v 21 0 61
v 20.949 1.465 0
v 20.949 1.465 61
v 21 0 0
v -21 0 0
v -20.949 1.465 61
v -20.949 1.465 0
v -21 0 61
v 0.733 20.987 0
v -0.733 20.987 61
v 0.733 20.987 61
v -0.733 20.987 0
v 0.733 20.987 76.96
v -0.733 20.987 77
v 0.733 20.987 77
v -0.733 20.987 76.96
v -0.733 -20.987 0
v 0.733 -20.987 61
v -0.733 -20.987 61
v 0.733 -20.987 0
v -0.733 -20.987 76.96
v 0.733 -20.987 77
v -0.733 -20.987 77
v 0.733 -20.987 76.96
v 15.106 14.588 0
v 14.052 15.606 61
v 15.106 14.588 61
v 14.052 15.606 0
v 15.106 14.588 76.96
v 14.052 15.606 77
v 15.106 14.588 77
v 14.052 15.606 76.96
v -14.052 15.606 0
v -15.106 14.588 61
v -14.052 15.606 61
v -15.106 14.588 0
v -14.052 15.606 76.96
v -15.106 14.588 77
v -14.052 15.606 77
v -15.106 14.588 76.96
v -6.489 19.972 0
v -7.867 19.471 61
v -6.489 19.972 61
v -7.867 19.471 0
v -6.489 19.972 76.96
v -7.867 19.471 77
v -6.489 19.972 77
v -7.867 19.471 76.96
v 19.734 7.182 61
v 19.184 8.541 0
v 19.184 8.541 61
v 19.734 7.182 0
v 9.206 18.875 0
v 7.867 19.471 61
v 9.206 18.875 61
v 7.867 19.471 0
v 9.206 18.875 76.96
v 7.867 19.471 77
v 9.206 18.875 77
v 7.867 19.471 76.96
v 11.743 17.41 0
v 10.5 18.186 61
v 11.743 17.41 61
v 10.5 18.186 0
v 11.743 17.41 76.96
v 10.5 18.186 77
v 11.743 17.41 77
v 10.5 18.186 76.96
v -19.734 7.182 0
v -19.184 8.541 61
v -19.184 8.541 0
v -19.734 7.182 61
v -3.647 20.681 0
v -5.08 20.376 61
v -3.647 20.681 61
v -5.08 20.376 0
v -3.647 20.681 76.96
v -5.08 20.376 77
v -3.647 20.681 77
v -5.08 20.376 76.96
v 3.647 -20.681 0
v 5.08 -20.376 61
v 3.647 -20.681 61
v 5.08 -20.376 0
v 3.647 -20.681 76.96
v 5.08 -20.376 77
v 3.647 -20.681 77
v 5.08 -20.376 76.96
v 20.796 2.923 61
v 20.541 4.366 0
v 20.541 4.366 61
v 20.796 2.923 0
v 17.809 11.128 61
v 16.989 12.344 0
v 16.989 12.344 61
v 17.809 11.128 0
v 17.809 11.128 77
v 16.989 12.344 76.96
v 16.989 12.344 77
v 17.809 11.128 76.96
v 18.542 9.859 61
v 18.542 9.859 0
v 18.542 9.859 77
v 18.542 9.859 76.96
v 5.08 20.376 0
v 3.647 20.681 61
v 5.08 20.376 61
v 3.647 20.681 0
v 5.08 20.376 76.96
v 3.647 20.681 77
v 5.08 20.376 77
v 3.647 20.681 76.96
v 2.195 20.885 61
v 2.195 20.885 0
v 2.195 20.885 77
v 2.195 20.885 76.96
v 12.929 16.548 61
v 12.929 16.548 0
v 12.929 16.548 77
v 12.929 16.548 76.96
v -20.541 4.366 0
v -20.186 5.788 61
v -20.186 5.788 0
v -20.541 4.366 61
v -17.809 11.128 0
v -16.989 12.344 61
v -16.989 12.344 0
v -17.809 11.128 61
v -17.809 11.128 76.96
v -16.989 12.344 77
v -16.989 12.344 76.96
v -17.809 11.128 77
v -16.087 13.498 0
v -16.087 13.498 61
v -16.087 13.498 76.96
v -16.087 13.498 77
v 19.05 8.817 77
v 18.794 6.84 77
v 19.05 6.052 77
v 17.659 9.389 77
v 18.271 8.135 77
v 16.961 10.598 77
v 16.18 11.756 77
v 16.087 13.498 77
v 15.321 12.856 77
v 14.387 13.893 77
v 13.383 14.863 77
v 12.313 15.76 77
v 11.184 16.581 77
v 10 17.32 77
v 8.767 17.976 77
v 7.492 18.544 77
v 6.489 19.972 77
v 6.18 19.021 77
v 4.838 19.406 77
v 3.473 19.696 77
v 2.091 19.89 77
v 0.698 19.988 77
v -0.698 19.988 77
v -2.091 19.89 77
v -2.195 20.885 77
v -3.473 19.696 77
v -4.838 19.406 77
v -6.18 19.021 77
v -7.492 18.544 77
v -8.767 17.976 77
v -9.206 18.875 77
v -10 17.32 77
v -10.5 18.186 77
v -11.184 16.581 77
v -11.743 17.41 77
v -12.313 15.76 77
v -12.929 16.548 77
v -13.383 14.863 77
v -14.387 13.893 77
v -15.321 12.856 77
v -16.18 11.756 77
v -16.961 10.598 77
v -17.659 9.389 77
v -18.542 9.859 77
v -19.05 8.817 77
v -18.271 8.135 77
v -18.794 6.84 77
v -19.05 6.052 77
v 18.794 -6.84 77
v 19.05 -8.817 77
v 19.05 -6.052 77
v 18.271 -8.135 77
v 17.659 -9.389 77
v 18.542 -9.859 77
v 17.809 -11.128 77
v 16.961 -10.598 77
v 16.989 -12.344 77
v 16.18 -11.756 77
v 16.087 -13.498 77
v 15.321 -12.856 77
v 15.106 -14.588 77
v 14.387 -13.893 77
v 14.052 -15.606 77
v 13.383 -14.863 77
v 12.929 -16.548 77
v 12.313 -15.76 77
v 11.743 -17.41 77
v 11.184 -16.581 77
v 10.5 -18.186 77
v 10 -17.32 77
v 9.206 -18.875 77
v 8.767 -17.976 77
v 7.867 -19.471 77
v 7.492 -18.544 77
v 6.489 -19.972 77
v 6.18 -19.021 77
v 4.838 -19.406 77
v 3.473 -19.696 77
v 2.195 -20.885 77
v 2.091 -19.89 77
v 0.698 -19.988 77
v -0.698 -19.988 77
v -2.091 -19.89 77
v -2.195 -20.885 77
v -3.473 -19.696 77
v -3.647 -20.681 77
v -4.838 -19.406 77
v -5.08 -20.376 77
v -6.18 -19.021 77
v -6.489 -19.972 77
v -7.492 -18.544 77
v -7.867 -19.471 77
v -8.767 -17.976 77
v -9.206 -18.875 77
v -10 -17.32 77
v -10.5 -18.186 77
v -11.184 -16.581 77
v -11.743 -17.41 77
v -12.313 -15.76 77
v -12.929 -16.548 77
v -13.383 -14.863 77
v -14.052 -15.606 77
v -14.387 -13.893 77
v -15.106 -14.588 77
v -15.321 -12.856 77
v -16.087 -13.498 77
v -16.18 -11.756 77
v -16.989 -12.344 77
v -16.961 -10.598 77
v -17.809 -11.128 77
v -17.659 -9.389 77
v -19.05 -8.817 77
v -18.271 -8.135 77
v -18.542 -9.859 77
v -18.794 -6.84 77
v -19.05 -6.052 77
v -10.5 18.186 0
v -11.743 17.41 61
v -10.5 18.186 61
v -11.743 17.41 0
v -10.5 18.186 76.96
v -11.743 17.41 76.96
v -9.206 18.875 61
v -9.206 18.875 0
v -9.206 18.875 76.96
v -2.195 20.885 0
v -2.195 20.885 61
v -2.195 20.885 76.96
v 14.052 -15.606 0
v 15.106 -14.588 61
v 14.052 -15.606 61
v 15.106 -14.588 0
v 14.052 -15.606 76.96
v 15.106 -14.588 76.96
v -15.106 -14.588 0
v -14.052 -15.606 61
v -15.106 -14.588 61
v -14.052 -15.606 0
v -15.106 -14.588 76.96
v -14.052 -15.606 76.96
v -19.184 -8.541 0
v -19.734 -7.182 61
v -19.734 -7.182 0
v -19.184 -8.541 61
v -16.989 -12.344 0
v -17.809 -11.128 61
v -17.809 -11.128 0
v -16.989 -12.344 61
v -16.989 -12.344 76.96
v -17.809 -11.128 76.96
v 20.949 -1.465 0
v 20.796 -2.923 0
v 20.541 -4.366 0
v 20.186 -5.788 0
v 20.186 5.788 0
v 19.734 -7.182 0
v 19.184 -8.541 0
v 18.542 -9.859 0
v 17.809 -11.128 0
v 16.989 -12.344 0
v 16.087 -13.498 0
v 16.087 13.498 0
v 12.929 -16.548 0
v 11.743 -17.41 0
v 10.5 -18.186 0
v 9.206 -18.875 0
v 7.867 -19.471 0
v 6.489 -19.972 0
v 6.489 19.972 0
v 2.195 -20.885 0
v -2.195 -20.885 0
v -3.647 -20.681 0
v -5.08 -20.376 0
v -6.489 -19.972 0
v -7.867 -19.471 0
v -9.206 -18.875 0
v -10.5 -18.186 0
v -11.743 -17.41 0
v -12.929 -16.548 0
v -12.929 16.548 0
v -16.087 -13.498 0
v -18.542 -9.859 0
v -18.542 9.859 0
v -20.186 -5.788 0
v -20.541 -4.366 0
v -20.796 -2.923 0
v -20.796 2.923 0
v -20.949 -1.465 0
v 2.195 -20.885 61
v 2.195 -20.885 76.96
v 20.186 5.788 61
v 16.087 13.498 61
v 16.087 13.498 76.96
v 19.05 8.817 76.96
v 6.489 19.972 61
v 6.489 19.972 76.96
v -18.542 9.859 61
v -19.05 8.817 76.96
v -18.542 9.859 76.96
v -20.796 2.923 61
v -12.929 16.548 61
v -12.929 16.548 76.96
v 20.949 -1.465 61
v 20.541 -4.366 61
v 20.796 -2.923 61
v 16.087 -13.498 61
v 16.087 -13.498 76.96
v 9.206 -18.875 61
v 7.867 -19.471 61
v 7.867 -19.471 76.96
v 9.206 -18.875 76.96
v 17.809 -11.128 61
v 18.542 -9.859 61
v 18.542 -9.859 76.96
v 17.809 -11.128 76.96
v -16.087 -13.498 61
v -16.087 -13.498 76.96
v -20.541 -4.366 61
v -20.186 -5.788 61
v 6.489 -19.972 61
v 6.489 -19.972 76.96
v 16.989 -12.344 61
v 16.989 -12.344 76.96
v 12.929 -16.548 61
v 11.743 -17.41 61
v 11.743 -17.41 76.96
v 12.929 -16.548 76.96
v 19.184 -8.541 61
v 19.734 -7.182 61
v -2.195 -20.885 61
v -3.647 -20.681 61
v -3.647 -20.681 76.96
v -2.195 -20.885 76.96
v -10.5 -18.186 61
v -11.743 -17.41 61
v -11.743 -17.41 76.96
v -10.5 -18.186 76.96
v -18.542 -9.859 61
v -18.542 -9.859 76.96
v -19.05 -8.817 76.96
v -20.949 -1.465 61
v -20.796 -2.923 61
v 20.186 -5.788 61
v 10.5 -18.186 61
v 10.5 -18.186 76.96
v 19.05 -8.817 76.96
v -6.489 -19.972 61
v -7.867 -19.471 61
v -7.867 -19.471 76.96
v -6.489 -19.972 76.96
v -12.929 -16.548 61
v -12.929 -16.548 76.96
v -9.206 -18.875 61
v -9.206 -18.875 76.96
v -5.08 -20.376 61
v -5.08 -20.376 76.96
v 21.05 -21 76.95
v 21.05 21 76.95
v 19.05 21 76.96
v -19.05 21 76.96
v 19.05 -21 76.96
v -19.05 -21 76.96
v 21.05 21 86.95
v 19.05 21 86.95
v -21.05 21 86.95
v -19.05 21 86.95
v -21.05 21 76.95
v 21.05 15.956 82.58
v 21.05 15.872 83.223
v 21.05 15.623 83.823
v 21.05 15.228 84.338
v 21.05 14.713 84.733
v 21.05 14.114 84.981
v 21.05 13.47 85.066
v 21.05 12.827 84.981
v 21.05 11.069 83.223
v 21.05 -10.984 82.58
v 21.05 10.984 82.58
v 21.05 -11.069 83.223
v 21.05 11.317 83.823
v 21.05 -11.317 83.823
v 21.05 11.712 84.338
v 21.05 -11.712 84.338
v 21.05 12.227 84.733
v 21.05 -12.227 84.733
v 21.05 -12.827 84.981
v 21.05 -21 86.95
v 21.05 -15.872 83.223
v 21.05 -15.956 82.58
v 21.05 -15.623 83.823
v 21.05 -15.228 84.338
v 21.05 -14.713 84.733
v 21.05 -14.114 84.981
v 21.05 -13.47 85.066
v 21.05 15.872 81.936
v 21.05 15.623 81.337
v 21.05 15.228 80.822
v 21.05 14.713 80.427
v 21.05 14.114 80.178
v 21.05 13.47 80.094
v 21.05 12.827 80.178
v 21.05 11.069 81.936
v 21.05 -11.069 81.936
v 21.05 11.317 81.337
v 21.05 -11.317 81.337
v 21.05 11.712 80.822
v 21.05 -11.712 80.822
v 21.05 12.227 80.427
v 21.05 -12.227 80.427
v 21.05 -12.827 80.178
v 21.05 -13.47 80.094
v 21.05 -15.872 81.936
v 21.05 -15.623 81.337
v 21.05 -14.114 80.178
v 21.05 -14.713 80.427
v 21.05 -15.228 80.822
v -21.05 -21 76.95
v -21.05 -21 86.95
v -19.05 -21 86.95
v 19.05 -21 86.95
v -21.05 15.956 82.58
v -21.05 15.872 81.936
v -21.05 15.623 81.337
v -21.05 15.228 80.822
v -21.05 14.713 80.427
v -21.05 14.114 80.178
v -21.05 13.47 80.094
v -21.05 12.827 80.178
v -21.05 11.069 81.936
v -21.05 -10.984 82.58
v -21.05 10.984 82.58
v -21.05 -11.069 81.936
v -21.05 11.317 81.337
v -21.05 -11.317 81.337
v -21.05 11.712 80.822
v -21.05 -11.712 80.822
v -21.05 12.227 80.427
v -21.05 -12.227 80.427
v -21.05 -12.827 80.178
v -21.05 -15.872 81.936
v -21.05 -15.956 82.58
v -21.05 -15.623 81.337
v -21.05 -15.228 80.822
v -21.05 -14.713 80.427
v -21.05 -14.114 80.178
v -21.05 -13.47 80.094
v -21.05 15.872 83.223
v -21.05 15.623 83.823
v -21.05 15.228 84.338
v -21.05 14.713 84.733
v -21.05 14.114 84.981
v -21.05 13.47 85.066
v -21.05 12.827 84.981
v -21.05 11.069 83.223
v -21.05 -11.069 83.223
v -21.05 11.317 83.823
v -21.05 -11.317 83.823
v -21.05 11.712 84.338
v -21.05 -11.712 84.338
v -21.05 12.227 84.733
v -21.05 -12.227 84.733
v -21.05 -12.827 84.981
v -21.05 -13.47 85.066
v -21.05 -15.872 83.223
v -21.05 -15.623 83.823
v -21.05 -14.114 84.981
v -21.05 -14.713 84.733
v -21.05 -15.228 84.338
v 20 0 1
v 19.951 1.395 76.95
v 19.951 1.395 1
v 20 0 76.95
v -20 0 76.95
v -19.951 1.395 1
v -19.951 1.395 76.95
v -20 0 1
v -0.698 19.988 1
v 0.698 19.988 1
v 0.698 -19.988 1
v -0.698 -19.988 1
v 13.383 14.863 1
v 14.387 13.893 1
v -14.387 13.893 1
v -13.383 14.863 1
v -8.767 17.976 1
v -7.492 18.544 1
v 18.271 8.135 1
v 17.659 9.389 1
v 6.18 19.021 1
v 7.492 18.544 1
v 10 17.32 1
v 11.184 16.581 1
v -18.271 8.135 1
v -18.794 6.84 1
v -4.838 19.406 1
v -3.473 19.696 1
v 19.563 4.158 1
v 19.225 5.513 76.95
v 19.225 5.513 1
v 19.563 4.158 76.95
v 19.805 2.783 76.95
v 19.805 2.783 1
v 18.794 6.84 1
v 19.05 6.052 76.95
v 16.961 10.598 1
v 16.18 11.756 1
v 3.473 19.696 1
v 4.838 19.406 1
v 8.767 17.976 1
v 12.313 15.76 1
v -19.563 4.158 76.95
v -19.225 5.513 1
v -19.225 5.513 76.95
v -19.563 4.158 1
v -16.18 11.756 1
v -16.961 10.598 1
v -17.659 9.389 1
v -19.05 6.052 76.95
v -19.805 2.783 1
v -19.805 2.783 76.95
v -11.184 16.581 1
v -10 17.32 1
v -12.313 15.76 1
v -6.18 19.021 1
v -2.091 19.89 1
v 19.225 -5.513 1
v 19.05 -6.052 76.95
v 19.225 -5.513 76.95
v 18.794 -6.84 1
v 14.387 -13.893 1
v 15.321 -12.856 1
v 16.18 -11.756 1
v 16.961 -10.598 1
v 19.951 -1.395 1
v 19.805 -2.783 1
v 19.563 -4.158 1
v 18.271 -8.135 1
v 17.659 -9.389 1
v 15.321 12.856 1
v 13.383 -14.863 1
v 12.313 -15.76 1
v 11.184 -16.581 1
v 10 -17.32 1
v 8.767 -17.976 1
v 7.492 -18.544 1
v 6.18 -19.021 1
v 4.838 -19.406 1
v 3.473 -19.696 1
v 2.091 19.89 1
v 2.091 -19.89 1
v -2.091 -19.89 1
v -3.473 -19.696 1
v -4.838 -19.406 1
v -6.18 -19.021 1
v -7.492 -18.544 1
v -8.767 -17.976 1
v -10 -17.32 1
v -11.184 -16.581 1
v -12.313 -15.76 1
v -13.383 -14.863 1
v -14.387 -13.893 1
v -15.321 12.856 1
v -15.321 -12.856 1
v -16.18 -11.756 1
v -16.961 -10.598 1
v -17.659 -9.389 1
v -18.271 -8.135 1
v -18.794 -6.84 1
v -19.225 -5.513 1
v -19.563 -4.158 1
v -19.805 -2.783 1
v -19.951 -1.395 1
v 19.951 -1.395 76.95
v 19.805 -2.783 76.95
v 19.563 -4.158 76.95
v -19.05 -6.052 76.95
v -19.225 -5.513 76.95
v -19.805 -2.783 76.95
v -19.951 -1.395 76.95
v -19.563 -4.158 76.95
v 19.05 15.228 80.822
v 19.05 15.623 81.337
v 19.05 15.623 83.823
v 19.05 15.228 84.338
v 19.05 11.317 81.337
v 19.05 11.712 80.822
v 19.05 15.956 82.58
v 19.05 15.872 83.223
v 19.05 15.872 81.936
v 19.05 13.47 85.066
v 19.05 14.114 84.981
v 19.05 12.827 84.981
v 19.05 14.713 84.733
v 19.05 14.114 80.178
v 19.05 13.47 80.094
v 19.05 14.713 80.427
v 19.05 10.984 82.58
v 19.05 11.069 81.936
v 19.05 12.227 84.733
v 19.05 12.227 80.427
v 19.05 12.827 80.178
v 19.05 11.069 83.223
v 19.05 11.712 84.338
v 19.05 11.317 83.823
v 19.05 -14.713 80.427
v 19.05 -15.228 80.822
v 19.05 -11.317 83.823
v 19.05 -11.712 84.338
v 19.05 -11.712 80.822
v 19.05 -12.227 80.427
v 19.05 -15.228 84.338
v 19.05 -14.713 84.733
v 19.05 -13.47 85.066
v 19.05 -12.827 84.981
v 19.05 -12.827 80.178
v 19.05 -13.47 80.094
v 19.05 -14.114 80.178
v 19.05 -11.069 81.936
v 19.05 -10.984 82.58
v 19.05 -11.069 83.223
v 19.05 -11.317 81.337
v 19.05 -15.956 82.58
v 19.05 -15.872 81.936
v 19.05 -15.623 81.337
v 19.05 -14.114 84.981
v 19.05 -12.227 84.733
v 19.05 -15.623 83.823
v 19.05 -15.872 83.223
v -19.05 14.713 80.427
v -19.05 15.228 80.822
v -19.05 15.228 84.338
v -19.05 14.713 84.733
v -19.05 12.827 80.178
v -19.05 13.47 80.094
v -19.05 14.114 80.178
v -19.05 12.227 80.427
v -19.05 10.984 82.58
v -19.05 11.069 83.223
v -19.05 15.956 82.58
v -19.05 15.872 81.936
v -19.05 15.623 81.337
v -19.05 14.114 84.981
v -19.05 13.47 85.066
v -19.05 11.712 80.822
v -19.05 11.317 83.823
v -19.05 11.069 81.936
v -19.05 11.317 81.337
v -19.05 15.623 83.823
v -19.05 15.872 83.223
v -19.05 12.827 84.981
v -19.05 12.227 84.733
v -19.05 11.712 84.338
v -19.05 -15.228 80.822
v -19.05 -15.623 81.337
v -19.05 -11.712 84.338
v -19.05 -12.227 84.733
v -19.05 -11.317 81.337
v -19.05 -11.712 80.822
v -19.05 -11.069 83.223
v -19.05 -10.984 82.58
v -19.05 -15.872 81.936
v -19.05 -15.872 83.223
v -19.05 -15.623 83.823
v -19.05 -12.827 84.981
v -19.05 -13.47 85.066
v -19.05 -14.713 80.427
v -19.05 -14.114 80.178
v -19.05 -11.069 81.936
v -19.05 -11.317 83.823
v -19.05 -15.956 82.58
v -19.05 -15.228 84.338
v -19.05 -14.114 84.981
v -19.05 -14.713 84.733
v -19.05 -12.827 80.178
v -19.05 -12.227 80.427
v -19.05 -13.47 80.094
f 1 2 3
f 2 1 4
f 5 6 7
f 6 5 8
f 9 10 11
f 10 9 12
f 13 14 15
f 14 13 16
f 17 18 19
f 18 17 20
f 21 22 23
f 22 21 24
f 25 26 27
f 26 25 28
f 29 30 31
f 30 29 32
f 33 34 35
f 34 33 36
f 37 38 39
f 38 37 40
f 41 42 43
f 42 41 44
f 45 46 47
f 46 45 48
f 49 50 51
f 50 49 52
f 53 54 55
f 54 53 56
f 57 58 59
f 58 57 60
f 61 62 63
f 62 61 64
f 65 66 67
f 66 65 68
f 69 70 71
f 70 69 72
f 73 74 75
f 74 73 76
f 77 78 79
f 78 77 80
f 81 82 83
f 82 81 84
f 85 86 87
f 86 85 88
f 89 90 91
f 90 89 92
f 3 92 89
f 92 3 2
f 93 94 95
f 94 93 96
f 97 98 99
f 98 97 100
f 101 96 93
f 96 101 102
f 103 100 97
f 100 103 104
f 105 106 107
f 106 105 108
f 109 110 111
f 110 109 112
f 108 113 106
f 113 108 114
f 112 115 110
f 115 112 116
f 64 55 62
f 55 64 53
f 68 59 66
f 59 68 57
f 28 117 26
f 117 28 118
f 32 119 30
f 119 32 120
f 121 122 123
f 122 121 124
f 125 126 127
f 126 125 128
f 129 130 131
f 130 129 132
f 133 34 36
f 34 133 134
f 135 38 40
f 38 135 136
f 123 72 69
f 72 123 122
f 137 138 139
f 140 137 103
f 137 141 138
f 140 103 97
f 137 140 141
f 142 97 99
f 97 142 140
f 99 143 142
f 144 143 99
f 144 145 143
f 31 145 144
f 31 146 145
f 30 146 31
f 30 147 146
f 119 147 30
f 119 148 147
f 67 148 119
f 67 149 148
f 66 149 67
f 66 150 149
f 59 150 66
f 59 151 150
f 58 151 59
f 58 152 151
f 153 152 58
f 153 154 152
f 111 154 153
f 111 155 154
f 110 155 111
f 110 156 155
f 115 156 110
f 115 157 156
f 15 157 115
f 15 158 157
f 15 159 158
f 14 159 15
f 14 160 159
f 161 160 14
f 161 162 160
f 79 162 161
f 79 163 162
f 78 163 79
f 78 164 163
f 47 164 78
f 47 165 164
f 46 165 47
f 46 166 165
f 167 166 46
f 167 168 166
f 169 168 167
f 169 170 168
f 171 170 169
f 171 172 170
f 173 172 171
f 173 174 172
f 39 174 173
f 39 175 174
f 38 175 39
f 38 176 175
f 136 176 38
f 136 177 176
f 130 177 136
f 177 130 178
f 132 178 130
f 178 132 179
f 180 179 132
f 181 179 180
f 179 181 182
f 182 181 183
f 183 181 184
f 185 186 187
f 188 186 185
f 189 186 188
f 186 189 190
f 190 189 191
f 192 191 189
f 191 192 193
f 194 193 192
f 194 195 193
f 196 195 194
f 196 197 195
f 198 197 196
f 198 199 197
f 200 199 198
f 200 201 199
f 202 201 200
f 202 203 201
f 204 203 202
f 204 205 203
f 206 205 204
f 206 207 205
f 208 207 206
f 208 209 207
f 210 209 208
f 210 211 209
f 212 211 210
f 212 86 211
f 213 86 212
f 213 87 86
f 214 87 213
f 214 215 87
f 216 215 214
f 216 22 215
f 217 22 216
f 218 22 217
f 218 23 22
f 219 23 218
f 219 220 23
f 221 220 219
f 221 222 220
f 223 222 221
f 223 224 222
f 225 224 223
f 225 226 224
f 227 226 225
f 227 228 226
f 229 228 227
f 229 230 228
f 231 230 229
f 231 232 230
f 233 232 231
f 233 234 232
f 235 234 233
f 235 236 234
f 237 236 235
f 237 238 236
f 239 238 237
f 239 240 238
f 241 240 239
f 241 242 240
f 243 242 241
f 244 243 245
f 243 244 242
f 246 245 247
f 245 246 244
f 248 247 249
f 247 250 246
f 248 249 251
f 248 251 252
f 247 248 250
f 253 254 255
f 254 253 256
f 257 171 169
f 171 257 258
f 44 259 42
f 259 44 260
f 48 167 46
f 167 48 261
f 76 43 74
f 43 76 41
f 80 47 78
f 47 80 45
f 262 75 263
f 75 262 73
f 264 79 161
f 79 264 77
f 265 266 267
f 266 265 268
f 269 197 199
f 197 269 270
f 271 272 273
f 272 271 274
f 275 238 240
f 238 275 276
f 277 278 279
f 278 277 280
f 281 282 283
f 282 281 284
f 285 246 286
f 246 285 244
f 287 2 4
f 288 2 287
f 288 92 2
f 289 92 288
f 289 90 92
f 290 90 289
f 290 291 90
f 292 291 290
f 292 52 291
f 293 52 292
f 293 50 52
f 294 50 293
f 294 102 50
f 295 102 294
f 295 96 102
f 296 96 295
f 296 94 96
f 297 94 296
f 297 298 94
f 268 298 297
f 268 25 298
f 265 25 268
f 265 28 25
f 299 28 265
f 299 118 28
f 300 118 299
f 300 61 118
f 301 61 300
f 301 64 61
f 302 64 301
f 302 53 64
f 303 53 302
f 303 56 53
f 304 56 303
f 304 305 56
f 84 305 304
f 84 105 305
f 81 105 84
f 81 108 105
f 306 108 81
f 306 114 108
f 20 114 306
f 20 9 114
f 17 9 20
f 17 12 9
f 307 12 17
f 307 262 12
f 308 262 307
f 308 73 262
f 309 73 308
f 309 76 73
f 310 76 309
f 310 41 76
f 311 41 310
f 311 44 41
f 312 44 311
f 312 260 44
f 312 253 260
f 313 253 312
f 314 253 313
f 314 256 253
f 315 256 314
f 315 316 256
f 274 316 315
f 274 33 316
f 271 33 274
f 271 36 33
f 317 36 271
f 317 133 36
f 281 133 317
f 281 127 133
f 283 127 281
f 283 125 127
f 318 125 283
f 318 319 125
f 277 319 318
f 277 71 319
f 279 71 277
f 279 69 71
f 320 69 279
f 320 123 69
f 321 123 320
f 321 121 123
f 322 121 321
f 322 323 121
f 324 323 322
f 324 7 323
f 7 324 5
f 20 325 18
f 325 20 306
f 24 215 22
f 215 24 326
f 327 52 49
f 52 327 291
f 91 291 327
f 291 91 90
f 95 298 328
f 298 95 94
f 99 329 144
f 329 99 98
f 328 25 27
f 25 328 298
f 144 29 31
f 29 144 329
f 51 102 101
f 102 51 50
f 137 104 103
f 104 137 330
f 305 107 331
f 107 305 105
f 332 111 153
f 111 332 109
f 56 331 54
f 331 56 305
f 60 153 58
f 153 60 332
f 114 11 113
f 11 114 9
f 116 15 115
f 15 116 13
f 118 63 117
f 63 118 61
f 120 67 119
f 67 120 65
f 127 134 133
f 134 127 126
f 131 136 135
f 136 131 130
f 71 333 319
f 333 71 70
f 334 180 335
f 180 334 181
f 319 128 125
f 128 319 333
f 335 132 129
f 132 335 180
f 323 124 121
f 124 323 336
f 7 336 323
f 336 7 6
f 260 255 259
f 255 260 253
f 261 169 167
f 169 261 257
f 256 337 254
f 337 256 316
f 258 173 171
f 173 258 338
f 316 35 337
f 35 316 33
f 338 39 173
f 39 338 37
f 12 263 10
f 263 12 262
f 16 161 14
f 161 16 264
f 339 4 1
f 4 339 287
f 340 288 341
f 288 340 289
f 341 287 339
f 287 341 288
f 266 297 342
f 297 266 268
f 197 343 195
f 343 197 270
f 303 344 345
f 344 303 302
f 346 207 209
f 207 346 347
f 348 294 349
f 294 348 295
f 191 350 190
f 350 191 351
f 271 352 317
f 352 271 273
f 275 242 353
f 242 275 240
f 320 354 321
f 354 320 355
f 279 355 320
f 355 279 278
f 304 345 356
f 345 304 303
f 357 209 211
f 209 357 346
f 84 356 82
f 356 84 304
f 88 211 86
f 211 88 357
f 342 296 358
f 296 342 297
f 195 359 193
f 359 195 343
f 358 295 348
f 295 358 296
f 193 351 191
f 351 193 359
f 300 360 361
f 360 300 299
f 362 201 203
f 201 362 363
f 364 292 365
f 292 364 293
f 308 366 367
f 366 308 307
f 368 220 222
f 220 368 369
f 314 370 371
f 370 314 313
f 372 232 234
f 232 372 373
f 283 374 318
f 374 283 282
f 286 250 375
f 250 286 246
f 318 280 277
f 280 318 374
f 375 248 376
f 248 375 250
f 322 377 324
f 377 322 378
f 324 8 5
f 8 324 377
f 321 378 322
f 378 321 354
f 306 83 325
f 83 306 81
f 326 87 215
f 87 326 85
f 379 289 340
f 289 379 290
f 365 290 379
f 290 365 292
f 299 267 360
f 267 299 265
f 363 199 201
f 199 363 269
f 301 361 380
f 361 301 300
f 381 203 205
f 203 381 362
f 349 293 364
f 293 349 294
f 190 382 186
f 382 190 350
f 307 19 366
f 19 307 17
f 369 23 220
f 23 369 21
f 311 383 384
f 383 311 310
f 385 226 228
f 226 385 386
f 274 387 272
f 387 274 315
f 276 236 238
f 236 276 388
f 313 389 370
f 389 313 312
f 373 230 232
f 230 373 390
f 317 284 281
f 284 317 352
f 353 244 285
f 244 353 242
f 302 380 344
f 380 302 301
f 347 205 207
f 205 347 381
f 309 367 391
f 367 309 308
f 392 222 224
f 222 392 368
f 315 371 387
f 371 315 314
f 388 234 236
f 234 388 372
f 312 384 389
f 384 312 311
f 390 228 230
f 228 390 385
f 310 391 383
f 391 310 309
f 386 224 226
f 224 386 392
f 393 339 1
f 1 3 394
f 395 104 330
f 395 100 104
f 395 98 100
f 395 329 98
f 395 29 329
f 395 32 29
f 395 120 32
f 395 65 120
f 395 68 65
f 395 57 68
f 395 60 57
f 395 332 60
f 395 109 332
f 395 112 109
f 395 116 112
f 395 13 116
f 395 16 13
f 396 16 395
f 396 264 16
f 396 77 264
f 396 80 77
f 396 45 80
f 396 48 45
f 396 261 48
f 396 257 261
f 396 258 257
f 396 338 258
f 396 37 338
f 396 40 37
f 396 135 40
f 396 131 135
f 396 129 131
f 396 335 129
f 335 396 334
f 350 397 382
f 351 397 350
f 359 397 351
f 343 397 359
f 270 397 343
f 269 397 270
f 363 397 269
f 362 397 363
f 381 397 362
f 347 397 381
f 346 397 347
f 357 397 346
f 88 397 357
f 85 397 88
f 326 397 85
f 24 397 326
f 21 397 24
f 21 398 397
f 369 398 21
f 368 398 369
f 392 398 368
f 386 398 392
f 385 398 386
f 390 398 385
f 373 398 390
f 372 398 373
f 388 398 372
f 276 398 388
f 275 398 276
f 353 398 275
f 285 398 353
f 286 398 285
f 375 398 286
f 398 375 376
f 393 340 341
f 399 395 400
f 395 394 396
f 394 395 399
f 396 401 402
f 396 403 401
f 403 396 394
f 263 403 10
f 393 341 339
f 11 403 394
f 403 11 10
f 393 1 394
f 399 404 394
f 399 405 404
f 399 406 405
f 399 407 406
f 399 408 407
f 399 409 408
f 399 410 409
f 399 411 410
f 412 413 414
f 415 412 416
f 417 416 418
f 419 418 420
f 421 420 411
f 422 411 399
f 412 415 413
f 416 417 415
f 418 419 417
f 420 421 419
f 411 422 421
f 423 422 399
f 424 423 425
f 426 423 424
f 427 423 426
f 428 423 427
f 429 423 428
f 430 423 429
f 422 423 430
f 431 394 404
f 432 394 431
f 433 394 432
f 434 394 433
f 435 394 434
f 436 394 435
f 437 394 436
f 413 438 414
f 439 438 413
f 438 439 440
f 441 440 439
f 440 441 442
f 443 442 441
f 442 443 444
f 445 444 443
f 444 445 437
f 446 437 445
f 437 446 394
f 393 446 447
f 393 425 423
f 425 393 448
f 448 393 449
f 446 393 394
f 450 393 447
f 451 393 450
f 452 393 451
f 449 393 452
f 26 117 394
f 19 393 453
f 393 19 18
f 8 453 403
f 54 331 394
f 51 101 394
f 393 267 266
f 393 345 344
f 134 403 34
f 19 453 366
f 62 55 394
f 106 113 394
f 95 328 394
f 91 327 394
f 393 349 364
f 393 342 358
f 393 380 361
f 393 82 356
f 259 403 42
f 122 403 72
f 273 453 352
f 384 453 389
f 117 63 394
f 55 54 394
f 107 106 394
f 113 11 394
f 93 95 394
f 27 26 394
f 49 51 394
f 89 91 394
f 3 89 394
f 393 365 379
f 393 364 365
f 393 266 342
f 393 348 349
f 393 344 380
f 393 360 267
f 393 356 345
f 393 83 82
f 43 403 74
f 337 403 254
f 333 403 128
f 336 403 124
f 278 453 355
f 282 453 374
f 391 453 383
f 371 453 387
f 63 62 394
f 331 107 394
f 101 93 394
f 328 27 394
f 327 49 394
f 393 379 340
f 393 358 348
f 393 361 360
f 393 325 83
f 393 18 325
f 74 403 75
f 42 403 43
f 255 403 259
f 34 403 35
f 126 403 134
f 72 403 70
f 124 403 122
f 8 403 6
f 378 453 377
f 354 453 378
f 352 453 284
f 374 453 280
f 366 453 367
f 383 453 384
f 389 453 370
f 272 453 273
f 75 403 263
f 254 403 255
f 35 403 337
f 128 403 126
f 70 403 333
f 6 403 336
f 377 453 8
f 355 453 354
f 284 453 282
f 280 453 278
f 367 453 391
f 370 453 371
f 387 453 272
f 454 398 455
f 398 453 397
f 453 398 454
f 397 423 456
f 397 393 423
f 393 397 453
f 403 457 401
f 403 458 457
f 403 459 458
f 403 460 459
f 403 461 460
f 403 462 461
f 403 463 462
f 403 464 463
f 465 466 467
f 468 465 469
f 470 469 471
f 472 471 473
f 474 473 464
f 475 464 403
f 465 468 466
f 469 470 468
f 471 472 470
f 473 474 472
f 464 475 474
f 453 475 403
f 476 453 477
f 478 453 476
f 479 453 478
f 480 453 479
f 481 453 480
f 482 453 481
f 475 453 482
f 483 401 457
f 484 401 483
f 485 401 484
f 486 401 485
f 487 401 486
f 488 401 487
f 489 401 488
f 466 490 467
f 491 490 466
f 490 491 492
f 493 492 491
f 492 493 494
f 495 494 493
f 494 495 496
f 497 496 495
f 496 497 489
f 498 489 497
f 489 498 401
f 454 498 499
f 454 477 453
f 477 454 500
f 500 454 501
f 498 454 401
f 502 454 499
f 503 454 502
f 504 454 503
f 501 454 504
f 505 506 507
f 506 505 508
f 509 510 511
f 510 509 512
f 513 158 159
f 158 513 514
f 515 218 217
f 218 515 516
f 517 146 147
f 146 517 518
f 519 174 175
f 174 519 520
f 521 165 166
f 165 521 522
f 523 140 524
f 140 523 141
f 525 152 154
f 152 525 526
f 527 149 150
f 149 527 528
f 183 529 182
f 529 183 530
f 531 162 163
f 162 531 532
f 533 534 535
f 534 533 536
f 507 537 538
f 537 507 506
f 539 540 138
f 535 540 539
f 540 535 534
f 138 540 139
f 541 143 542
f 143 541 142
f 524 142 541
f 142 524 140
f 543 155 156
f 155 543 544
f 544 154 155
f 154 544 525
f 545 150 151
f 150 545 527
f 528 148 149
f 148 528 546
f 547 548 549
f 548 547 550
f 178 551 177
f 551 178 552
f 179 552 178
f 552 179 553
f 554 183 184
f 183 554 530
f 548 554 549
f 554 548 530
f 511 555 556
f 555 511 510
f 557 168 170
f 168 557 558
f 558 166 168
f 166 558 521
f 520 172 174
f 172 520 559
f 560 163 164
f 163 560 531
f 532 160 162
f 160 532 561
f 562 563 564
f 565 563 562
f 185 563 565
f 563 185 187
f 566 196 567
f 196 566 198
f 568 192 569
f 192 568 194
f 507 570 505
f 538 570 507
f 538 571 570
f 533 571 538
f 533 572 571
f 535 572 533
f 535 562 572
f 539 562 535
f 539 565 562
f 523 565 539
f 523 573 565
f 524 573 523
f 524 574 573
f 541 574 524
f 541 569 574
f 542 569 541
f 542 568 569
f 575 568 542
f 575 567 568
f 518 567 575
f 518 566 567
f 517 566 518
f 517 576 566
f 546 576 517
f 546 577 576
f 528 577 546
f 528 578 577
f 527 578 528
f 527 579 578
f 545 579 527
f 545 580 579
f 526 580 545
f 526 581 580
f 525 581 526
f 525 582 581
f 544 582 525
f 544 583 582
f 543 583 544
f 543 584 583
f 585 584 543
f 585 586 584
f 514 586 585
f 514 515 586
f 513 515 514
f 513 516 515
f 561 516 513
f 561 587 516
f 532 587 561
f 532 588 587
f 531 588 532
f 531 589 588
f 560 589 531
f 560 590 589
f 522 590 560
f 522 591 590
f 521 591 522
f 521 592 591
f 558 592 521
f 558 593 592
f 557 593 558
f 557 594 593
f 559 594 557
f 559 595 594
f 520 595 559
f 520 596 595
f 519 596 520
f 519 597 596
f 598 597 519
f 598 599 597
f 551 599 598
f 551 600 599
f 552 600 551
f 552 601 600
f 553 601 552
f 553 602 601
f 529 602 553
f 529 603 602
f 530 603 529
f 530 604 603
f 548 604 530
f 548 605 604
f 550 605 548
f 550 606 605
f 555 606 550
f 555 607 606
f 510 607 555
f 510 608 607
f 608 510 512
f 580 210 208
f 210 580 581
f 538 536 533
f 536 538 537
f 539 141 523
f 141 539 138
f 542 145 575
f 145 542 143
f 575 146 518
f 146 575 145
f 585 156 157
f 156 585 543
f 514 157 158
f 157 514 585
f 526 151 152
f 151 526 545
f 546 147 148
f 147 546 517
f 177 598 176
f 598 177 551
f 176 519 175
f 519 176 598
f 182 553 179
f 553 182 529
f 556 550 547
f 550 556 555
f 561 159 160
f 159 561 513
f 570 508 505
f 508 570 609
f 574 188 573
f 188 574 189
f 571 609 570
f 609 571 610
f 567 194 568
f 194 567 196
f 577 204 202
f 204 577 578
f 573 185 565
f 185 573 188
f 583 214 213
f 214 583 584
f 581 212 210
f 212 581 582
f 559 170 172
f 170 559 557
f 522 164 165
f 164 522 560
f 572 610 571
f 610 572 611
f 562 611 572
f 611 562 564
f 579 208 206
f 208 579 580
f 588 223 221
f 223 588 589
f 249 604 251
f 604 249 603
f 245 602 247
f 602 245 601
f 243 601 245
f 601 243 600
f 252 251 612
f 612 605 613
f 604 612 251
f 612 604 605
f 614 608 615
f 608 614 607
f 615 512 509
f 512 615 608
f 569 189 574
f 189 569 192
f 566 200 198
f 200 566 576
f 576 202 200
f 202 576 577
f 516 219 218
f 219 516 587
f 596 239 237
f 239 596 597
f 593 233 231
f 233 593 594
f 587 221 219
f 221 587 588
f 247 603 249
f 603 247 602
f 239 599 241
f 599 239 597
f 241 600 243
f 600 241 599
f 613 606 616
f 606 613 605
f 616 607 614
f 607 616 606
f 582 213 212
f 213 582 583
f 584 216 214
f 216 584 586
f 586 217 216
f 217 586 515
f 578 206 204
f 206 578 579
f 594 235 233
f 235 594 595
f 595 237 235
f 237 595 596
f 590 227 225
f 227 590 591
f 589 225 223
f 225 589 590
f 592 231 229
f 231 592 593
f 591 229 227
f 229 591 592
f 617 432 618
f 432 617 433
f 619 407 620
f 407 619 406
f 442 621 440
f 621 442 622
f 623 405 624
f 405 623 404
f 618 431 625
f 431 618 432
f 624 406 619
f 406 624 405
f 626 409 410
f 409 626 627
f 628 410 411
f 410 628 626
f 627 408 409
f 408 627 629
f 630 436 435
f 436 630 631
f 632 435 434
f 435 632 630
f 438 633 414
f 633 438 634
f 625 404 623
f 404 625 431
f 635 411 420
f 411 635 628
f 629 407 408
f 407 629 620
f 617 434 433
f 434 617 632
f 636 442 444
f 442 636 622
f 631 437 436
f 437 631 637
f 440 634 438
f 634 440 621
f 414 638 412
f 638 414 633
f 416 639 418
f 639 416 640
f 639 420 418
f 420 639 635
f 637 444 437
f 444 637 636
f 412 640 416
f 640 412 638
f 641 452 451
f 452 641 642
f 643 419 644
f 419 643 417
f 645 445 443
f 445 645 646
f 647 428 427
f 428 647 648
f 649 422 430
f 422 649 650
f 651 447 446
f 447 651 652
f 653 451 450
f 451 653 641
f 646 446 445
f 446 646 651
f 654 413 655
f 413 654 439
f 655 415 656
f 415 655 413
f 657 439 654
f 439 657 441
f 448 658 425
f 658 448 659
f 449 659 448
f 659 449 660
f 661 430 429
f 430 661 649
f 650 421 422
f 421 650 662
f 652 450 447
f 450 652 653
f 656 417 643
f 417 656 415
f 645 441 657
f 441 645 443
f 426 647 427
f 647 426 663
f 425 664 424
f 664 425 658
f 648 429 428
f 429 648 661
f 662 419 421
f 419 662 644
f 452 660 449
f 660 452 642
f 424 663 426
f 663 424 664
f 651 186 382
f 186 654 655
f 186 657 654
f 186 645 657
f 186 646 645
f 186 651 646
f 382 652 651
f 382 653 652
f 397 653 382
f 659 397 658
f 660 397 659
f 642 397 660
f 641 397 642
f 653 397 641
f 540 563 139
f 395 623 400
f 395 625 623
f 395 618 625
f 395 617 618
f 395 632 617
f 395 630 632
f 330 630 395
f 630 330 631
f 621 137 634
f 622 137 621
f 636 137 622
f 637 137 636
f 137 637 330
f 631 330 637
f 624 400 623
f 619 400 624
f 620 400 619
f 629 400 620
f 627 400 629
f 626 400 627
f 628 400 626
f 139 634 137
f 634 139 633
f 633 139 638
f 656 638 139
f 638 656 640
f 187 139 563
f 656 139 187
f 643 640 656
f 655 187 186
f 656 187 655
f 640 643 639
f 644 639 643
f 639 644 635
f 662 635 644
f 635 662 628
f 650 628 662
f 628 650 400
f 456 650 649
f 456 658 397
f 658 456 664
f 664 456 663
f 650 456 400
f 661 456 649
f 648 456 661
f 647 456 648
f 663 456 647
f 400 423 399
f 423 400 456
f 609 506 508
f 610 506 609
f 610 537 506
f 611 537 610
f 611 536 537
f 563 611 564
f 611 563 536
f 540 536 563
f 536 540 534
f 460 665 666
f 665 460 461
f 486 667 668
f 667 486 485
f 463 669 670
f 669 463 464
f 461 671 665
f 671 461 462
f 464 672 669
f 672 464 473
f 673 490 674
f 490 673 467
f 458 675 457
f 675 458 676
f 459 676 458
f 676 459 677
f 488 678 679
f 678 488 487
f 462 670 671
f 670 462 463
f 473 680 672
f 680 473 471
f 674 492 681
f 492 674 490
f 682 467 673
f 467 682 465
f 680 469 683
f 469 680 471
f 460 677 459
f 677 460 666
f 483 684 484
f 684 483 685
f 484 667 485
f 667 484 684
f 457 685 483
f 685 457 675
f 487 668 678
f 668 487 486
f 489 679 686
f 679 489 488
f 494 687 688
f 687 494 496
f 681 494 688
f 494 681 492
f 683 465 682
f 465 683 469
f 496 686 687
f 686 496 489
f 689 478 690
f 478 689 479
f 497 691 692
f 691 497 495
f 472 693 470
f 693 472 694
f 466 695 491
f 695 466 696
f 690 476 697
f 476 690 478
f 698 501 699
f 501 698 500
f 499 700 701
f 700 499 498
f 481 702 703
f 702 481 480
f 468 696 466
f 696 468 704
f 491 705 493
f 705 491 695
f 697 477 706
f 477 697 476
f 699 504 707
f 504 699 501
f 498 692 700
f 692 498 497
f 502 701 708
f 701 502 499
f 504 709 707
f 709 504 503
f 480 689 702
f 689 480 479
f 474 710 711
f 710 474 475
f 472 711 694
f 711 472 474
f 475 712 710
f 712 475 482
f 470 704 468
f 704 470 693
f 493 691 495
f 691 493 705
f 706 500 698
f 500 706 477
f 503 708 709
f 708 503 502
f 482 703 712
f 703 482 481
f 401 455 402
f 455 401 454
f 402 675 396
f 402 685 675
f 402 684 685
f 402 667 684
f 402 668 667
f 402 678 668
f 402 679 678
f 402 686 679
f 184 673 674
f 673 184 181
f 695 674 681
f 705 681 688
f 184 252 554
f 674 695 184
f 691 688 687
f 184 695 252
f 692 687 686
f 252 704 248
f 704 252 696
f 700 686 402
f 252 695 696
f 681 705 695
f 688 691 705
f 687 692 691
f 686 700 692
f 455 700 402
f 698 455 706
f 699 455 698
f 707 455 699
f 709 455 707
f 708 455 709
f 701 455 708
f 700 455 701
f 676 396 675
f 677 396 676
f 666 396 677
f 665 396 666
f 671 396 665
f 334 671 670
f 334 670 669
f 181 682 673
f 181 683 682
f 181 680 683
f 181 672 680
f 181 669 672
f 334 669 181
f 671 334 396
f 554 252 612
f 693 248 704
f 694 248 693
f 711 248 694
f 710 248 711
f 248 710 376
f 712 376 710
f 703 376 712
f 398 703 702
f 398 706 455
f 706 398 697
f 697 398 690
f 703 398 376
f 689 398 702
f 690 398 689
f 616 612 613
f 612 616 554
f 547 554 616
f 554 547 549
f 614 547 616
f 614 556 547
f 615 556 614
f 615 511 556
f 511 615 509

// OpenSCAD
// **************************************************
// Big Corner Motor Cover
// David M. Flynn
// Filename: RoverWheel.scad
// Created: 3/15/2018
// Rev: 1.0.0 3/15/2018
// Units: millimeters
// **************************************************
// History:
// **************************************************

include<CommonStuffSAEmm.scad>

$fn=90;
IDXtra=0.2;
Overlap=0.05;

module MotorCover(){
	Motor_d=40;
	Motor_h=76;
	Wall_t=1.0;

	
	difference(){
		union(){
			cylinder(d=Motor_d+Wall_t*2, h=Motor_h+1);
			
			hull(){
				translate([ChannelLength/2,-(Motor_d+Wall_t*2)/2,Motor_h+1-Overlap])cube([2,Motor_d+Wall_t*2,0.01]);
				translate([-ChannelLength/2-2,-(Motor_d+Wall_t*2)/2,Motor_h+1-Overlap])cube([2,Motor_d+Wall_t*2,0.01]);
				translate([0,0,Motor_h-15]) cylinder(d=Motor_d+Wall_t*2,h=0.01);
			} // hull
		} // union
		
		translate([0,0,1]) cylinder(d=Motor_d,h=Motor_h+Overlap);
		
	} // diff
	
	difference(){
		translate([ChannelLength/2,-(Motor_d+Wall_t*2)/2,Motor_h+1-Overlap])cube([2,Motor_d+Wall_t*2,10]);
		translate([ChannelLength/2+3,0,Motor_h+1+1.5/2*25.4])rotate([0,90,0])ChannelBoltPattern1500() Bolt8ClearHole();
	}
	difference(){
		translate([-ChannelLength/2-2,-(Motor_d+Wall_t*2)/2,Motor_h+1-Overlap])cube([2,Motor_d+Wall_t*2,10]);
		translate([-ChannelLength/2-3,0,Motor_h+1+1.5/2*25.4])rotate([0,-90,0])ChannelBoltPattern1500() Bolt8ClearHole();
	}
} // MotorCover

MotorCover();

module ChannelBoltPattern0770(){
	// inches
	BC_d=0.77*25.4;
	BC_r=BC_d/2;
	
	translate([BC_r,0,0]) children();
	rotate([0,0,45]) translate([BC_r,0,0]) children();
	rotate([0,0,90]) translate([BC_r,0,0]) children();
	rotate([0,0,135]) translate([BC_r,0,0]) children();
	rotate([0,0,180]) translate([BC_r,0,0]) children();
	rotate([0,0,225]) translate([BC_r,0,0]) children();
	rotate([0,0,270]) translate([BC_r,0,0]) children();
	rotate([0,0,315]) translate([BC_r,0,0]) children();
	
} // ChannelBoltPattern0770

//ChannelBoltPattern0770() Bolt6Hole();

module ChannelBoltPattern1500(){
	// inches
	BC_d=1.50*25.4;
	BC_r=BC_d/2;
	
	rotate([0,0,45]) translate([BC_r,0,0]) children();
	rotate([0,0,135]) translate([BC_r,0,0]) children();
	rotate([0,0,225]) translate([BC_r,0,0]) children();
	rotate([0,0,315]) translate([BC_r,0,0]) children();
	
} // ChannelBoltPattern1500

//ChannelBoltPattern1500() Bolt6Hole();

	ChannelDepth=1.410*25.4;
	ChannelWidth=1.320*25.4;
	ChannelLength=1.500*25.4;
